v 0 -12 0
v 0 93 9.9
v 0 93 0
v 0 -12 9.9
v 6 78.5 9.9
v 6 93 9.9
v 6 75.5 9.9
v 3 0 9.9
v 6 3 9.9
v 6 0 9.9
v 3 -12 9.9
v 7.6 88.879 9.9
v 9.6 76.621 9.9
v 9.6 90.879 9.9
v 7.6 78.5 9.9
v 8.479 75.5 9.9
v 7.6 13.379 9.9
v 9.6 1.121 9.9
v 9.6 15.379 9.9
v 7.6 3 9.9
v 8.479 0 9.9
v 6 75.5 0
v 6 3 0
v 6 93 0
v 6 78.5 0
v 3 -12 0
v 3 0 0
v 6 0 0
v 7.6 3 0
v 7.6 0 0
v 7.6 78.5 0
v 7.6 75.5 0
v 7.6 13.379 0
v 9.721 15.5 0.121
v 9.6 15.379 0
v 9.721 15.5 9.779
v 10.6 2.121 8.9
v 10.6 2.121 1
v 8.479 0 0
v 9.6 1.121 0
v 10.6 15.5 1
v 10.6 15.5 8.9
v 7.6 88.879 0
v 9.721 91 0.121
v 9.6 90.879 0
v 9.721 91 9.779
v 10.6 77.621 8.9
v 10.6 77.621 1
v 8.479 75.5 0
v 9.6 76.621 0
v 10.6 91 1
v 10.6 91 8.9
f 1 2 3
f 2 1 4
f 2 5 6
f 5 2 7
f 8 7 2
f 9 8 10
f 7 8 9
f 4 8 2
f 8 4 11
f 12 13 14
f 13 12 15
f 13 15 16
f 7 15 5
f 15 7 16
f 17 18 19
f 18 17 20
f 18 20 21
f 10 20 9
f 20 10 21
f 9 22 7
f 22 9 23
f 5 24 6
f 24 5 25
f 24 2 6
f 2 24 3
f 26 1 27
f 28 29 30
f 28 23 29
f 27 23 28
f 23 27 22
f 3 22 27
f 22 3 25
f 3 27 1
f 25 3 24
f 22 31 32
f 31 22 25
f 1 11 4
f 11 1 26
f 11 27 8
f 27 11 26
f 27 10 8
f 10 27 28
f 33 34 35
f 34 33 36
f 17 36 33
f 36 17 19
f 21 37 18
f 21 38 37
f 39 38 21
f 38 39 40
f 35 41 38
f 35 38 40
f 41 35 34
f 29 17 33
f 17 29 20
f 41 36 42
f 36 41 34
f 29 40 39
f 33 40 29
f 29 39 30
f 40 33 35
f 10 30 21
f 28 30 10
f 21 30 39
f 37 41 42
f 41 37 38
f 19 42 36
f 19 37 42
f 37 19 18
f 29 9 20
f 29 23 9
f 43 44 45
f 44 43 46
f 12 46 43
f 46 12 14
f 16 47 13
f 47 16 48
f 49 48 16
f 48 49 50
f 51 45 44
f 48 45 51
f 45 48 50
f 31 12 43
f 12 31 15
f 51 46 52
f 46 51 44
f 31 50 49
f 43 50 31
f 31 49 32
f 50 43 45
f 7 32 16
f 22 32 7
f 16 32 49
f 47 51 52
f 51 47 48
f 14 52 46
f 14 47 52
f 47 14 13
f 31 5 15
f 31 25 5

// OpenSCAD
shelf_thickness=1.6;
shelf_cutout_width=10;
shelf_cutout_height=16;
shelf_cutout_space=60;

function shelf_cutout_dimensions() = [shelf_cutout_height,shelf_cutout_width,shelf_thickness];

shelf_cutout_height_tolerance=0.5;

width_fudge=0.1;

backplate_adjust=12;
backplate_width=shelf_cutout_width-width_fudge;
backplate_height=shelf_cutout_space*1.75;
backplate_thickness=6;

function hook_backplate_dimensions() = [backplate_height,backplate_width,backplate_thickness];
function hook_backplate_hook_dimensions() = [backplate_adjust,backplate_width,backplate_thickness/2];

clip_thickness=3;
clip_width=shelf_cutout_width-width_fudge;
clip_height=shelf_cutout_height-shelf_cutout_height_tolerance;
clip_offset=shelf_thickness;
clip_downshift=shelf_cutout_space+clip_height;

clip_bevel=1;

top_chamfer_angle=45;
bottom_chamfer_angle=45;
chamfer_square=clip_thickness;

module clip() {
    union() {
        cube([clip_offset, clip_thickness, clip_width]);

        difference() {
            translate([clip_thickness+clip_offset,clip_height,clip_width])
            rotate([90,180,0])
            linear_extrude(height=clip_height) {
                polygon(points=[
                    [0+clip_bevel,0],[0,0+clip_bevel],
                    [0,clip_width-clip_bevel],[0+clip_bevel,clip_width],
                    [clip_thickness,clip_width],[clip_thickness,0]
                ]);
            }

            translate([clip_offset,0,0])
            union() {
                // bottom chamfer
                translate([0,clip_height,0])
                rotate([0,0,bottom_chamfer_angle])
                cube([chamfer_square,chamfer_square,(clip_width+2)*2],center=true);

                // top chamfer
                translate([clip_thickness,0,0])
                rotate([0,0,top_chamfer_angle])
                cube([chamfer_square,chamfer_square,(clip_width+2)*2],center=true);
            }
        }
    }
}


module hook() {
    union() {
        translate([0,-backplate_adjust,0])
        difference() {
            cube([backplate_thickness, backplate_height, backplate_width]);

            translate([backplate_thickness/2,-2,-1])
            cube([backplate_thickness/2+2, backplate_adjust+2, backplate_width+2]);
        }

        translate([backplate_thickness,0,0])
        union() {
            clip();
            translate([0,clip_downshift,0]) clip();
        }
    }
}

hook();
